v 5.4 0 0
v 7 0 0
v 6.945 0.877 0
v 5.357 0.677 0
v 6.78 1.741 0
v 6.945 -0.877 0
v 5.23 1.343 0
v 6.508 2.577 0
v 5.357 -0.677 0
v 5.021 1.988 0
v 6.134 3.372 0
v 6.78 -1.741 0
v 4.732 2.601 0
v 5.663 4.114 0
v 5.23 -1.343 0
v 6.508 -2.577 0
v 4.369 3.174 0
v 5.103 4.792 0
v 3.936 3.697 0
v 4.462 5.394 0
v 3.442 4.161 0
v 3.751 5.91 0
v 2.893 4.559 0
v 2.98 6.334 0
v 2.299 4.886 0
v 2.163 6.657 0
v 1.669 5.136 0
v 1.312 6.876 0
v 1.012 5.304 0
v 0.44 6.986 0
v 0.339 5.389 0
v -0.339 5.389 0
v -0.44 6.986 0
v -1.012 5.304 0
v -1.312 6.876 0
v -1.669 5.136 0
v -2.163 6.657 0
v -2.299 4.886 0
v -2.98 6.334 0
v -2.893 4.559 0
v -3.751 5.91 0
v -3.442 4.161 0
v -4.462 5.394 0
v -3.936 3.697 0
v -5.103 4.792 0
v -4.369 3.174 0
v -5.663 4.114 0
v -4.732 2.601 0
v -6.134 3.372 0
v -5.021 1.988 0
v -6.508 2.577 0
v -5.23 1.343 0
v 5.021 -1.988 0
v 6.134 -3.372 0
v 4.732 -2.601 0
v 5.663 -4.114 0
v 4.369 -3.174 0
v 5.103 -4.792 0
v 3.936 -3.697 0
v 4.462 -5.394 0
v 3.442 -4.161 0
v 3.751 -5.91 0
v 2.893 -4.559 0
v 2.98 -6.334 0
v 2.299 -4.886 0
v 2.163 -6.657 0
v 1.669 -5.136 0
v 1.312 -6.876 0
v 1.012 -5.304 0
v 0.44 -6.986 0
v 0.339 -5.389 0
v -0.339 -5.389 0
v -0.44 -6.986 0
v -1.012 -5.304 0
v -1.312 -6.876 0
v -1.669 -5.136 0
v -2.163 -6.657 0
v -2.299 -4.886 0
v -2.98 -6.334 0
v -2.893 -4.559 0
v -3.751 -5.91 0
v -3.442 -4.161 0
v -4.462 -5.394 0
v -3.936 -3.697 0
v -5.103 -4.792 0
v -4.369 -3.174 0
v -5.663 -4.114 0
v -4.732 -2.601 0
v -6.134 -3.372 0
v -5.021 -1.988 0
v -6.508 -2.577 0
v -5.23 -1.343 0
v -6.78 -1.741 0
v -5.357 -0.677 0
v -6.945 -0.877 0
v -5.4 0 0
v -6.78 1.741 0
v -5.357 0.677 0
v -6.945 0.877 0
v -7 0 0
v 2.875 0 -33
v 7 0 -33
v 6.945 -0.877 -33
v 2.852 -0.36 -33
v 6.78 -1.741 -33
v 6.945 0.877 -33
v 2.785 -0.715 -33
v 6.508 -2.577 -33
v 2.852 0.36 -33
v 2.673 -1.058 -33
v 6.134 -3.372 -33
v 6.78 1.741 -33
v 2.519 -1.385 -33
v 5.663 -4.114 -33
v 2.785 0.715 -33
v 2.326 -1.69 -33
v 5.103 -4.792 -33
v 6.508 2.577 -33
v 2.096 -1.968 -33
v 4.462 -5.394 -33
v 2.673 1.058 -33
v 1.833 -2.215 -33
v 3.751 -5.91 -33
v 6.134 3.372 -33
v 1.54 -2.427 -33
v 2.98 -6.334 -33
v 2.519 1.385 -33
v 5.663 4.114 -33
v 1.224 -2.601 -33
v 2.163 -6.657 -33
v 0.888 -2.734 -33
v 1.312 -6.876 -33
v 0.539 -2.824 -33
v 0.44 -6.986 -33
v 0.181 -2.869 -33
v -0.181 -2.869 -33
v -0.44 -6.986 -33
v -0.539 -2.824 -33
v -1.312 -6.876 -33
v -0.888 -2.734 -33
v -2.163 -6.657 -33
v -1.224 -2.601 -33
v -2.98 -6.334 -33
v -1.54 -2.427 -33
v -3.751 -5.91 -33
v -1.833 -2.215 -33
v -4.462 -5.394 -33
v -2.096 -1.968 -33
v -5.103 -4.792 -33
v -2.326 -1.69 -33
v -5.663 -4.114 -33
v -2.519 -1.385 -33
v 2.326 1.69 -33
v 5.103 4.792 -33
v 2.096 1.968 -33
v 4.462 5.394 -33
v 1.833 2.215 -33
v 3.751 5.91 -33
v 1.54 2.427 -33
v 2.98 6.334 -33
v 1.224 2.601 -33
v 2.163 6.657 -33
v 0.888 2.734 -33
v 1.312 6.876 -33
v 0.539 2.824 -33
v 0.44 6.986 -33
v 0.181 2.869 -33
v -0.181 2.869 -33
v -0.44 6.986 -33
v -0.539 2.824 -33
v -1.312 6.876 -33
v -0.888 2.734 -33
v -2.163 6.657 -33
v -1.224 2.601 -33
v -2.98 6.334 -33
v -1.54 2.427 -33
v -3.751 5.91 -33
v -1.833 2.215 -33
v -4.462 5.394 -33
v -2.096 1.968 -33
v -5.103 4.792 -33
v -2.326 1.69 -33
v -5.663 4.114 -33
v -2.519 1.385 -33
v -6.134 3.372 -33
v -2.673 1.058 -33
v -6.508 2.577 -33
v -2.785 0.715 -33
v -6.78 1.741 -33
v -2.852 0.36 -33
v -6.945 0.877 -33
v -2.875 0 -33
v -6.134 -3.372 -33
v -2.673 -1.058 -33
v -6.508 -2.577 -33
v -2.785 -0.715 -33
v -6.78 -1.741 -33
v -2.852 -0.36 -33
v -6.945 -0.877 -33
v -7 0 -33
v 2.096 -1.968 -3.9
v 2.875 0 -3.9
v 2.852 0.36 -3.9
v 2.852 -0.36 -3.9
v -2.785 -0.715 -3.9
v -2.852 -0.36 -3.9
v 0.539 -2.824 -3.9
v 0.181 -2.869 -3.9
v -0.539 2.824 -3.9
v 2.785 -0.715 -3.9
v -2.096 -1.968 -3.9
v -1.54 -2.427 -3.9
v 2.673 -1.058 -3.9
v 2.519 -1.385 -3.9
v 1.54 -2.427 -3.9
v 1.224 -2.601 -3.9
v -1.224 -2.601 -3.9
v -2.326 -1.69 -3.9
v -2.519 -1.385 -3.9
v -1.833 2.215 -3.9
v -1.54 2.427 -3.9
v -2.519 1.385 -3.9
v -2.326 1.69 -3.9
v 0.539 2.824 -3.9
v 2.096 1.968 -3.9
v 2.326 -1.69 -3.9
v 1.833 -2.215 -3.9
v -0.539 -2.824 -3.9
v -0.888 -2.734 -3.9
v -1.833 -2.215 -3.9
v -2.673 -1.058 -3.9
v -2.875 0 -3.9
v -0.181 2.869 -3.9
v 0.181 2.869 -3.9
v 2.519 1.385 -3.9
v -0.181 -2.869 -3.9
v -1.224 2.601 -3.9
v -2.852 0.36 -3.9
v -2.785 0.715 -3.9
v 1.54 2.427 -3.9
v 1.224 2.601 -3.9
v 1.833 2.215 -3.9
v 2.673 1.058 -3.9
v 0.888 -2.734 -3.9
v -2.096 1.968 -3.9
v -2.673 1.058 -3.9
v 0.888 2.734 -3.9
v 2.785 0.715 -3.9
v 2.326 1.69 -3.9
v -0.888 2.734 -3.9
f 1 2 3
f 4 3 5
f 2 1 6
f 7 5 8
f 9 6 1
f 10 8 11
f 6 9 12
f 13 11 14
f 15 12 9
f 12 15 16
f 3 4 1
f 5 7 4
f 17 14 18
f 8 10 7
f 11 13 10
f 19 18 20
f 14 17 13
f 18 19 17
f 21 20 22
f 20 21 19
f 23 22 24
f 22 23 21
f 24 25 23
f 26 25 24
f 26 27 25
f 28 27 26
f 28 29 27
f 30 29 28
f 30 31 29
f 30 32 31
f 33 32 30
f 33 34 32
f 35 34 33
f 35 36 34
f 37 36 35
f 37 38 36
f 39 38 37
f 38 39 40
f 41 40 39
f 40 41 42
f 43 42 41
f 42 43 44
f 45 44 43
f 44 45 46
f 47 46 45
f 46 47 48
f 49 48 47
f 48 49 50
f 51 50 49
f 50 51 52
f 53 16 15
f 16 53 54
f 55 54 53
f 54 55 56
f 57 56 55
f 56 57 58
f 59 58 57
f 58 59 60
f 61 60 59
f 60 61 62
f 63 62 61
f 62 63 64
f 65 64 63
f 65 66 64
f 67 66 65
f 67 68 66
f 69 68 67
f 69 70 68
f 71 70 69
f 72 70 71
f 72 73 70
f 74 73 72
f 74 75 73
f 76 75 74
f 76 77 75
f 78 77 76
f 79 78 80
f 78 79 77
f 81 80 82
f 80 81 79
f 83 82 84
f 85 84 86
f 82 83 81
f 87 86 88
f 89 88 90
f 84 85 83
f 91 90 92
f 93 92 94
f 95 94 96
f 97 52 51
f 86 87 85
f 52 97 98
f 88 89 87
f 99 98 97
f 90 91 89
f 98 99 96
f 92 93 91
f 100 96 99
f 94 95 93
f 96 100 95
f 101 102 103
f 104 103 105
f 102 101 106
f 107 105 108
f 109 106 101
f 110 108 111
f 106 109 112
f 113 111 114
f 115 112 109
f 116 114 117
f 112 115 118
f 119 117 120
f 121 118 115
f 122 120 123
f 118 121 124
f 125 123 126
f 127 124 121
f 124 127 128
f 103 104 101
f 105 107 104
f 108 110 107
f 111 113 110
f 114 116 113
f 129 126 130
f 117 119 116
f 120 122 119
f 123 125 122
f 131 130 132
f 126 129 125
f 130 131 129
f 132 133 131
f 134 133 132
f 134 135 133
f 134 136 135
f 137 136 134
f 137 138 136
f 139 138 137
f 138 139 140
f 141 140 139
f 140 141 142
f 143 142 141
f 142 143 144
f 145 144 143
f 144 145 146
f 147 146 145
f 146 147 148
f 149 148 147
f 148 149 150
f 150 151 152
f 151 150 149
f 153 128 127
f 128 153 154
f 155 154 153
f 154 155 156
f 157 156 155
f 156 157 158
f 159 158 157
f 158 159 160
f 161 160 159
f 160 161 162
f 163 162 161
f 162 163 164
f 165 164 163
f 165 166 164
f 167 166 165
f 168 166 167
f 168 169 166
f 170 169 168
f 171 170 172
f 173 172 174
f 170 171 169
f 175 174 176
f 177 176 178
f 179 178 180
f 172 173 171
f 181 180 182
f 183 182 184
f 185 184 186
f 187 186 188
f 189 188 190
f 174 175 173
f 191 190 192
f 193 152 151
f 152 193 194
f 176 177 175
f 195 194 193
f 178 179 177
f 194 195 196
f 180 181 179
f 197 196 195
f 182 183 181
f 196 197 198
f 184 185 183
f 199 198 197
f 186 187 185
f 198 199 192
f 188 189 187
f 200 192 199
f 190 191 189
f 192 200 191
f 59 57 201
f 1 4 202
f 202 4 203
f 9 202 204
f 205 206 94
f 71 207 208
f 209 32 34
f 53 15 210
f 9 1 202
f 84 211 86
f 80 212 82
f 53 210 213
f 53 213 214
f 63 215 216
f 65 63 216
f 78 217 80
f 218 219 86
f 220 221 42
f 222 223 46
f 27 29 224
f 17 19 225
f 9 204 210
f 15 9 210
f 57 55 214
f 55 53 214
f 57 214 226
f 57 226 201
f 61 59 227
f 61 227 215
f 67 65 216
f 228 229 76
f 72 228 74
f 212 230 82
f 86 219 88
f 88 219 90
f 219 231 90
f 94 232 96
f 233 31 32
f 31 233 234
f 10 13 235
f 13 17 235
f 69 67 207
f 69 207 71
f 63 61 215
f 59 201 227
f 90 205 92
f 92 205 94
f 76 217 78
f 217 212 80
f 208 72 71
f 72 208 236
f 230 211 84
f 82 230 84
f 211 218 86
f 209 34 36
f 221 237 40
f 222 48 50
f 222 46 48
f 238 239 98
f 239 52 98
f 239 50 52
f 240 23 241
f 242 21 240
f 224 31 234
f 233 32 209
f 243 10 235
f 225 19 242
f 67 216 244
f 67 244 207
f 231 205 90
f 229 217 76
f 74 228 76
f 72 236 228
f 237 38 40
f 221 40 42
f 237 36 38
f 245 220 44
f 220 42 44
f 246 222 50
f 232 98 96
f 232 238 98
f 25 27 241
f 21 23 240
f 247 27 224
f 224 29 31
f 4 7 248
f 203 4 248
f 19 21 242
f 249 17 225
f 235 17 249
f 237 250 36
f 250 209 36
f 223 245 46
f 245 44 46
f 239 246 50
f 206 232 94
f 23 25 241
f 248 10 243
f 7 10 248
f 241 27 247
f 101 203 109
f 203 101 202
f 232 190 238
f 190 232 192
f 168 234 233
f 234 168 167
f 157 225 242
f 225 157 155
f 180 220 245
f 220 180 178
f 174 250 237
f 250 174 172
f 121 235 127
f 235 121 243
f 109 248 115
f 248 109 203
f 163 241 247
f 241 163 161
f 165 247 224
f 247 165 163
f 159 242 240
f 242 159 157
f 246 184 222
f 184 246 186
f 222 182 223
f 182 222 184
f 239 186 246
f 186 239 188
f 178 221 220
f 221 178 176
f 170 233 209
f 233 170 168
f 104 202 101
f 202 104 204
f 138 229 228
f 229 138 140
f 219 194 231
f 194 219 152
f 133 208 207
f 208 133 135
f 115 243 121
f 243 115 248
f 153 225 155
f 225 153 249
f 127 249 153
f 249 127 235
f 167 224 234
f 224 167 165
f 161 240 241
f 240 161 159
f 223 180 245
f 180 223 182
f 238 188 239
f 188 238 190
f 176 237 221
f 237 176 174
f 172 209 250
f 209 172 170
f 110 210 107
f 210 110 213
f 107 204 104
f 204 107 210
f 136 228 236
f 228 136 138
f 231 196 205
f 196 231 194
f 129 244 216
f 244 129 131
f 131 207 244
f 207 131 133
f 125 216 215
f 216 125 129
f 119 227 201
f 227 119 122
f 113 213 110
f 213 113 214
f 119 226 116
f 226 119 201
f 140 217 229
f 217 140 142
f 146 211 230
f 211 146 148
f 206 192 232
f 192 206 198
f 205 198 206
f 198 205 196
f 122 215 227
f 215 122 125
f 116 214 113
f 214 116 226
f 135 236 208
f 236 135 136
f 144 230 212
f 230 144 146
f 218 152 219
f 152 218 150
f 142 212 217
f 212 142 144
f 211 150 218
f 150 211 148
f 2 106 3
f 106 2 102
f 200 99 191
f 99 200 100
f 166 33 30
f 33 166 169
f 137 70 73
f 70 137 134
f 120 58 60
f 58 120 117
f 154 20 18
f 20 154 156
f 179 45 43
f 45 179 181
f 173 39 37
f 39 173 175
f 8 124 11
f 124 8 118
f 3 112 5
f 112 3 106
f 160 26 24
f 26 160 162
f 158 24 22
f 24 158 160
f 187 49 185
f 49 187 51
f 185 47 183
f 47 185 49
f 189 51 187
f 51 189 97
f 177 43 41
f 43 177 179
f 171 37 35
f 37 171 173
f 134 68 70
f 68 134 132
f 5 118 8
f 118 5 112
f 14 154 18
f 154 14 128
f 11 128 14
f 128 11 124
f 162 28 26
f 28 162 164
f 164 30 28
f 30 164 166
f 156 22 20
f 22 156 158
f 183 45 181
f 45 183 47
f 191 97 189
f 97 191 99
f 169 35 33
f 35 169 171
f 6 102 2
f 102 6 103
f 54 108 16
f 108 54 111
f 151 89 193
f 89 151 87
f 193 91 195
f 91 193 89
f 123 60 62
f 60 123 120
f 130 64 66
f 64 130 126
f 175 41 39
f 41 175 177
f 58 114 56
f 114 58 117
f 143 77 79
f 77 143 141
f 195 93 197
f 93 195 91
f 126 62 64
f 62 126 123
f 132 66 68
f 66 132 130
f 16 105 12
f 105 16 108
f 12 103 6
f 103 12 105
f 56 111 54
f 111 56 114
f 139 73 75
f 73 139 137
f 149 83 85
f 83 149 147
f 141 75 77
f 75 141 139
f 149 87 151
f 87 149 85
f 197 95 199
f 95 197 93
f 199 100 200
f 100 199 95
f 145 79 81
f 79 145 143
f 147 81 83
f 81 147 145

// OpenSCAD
$fn = 50;


difference() {
	union() {
		translate(v = [0, 0, -33.0000000000]) {
			cylinder(h = 33, r = 7.0000000000);
		}
		cylinder(h = 0, r = 17.0000000000);
	}
	union() {
		translate(v = [0, 0, 0]) {
			rotate(a = [0, 0, 0]) {
				difference() {
					union() {
						#translate(v = [0, 0, -33.0000000000]) {
							cylinder(h = 33, r = 2.6000000000);
						}
						#translate(v = [0, 0, -3.9000000000]) {
							cylinder(h = 3.9000000000, r = 7.0000000000, r1 = 2.8750000000, r2 = 5.4000000000);
						}
						#translate(v = [0, 0, -33.0000000000]) {
							cylinder(h = 33, r = 2.8750000000);
						}
						#translate(v = [0, 0, -33.0000000000]) {
							cylinder(h = 33, r = 2.6000000000);
						}
					}
					union();
				}
			}
		}
	}
}
